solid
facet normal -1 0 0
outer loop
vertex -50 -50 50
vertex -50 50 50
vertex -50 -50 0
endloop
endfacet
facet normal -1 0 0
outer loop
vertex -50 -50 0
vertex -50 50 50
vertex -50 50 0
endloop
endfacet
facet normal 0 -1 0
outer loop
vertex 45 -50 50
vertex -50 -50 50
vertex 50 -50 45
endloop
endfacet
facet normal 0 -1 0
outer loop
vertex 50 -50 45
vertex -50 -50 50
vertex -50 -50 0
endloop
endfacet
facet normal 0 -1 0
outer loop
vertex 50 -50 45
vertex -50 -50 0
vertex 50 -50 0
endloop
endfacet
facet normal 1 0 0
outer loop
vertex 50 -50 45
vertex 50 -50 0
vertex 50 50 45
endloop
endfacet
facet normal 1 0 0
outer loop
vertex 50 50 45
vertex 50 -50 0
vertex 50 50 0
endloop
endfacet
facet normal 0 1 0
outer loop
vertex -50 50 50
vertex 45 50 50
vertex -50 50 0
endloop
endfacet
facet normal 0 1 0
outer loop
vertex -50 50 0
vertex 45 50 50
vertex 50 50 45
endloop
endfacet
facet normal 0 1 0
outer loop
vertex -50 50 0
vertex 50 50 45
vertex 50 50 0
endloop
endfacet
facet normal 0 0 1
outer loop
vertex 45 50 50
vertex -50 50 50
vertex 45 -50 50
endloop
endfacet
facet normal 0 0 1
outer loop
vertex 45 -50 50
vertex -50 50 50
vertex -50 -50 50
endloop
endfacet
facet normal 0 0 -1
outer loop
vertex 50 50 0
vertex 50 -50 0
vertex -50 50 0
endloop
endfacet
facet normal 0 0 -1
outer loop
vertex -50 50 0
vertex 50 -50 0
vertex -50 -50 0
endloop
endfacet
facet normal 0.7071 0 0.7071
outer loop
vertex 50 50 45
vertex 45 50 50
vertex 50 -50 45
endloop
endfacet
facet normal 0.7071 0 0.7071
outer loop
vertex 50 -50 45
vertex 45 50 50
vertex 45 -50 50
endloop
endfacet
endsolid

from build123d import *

# Parameters (mm, degrees)
SKIZZE1_W                       = 100
SKIZZE1_H                       = 100
AUFSATZ_LINEAR_AUSTRAGEN1_DEPTH = 50
FASE1_SIZE                      = 5


with BuildPart() as part:
    # Skizze1 → Aufsatz-Linear austragen1 (new body)
    with BuildSketch(Plane.XY):
        Rectangle(SKIZZE1_W, SKIZZE1_H)
    extrude(amount=AUFSATZ_LINEAR_AUSTRAGEN1_DEPTH)

    # Fase1
    fase1_edges = [part.edges().sort_by_distance(p)[0] for p in [
        (50, 0, 50),
    ]]
    chamfer(fase1_edges, length=FASE1_SIZE)


solid = part.part
